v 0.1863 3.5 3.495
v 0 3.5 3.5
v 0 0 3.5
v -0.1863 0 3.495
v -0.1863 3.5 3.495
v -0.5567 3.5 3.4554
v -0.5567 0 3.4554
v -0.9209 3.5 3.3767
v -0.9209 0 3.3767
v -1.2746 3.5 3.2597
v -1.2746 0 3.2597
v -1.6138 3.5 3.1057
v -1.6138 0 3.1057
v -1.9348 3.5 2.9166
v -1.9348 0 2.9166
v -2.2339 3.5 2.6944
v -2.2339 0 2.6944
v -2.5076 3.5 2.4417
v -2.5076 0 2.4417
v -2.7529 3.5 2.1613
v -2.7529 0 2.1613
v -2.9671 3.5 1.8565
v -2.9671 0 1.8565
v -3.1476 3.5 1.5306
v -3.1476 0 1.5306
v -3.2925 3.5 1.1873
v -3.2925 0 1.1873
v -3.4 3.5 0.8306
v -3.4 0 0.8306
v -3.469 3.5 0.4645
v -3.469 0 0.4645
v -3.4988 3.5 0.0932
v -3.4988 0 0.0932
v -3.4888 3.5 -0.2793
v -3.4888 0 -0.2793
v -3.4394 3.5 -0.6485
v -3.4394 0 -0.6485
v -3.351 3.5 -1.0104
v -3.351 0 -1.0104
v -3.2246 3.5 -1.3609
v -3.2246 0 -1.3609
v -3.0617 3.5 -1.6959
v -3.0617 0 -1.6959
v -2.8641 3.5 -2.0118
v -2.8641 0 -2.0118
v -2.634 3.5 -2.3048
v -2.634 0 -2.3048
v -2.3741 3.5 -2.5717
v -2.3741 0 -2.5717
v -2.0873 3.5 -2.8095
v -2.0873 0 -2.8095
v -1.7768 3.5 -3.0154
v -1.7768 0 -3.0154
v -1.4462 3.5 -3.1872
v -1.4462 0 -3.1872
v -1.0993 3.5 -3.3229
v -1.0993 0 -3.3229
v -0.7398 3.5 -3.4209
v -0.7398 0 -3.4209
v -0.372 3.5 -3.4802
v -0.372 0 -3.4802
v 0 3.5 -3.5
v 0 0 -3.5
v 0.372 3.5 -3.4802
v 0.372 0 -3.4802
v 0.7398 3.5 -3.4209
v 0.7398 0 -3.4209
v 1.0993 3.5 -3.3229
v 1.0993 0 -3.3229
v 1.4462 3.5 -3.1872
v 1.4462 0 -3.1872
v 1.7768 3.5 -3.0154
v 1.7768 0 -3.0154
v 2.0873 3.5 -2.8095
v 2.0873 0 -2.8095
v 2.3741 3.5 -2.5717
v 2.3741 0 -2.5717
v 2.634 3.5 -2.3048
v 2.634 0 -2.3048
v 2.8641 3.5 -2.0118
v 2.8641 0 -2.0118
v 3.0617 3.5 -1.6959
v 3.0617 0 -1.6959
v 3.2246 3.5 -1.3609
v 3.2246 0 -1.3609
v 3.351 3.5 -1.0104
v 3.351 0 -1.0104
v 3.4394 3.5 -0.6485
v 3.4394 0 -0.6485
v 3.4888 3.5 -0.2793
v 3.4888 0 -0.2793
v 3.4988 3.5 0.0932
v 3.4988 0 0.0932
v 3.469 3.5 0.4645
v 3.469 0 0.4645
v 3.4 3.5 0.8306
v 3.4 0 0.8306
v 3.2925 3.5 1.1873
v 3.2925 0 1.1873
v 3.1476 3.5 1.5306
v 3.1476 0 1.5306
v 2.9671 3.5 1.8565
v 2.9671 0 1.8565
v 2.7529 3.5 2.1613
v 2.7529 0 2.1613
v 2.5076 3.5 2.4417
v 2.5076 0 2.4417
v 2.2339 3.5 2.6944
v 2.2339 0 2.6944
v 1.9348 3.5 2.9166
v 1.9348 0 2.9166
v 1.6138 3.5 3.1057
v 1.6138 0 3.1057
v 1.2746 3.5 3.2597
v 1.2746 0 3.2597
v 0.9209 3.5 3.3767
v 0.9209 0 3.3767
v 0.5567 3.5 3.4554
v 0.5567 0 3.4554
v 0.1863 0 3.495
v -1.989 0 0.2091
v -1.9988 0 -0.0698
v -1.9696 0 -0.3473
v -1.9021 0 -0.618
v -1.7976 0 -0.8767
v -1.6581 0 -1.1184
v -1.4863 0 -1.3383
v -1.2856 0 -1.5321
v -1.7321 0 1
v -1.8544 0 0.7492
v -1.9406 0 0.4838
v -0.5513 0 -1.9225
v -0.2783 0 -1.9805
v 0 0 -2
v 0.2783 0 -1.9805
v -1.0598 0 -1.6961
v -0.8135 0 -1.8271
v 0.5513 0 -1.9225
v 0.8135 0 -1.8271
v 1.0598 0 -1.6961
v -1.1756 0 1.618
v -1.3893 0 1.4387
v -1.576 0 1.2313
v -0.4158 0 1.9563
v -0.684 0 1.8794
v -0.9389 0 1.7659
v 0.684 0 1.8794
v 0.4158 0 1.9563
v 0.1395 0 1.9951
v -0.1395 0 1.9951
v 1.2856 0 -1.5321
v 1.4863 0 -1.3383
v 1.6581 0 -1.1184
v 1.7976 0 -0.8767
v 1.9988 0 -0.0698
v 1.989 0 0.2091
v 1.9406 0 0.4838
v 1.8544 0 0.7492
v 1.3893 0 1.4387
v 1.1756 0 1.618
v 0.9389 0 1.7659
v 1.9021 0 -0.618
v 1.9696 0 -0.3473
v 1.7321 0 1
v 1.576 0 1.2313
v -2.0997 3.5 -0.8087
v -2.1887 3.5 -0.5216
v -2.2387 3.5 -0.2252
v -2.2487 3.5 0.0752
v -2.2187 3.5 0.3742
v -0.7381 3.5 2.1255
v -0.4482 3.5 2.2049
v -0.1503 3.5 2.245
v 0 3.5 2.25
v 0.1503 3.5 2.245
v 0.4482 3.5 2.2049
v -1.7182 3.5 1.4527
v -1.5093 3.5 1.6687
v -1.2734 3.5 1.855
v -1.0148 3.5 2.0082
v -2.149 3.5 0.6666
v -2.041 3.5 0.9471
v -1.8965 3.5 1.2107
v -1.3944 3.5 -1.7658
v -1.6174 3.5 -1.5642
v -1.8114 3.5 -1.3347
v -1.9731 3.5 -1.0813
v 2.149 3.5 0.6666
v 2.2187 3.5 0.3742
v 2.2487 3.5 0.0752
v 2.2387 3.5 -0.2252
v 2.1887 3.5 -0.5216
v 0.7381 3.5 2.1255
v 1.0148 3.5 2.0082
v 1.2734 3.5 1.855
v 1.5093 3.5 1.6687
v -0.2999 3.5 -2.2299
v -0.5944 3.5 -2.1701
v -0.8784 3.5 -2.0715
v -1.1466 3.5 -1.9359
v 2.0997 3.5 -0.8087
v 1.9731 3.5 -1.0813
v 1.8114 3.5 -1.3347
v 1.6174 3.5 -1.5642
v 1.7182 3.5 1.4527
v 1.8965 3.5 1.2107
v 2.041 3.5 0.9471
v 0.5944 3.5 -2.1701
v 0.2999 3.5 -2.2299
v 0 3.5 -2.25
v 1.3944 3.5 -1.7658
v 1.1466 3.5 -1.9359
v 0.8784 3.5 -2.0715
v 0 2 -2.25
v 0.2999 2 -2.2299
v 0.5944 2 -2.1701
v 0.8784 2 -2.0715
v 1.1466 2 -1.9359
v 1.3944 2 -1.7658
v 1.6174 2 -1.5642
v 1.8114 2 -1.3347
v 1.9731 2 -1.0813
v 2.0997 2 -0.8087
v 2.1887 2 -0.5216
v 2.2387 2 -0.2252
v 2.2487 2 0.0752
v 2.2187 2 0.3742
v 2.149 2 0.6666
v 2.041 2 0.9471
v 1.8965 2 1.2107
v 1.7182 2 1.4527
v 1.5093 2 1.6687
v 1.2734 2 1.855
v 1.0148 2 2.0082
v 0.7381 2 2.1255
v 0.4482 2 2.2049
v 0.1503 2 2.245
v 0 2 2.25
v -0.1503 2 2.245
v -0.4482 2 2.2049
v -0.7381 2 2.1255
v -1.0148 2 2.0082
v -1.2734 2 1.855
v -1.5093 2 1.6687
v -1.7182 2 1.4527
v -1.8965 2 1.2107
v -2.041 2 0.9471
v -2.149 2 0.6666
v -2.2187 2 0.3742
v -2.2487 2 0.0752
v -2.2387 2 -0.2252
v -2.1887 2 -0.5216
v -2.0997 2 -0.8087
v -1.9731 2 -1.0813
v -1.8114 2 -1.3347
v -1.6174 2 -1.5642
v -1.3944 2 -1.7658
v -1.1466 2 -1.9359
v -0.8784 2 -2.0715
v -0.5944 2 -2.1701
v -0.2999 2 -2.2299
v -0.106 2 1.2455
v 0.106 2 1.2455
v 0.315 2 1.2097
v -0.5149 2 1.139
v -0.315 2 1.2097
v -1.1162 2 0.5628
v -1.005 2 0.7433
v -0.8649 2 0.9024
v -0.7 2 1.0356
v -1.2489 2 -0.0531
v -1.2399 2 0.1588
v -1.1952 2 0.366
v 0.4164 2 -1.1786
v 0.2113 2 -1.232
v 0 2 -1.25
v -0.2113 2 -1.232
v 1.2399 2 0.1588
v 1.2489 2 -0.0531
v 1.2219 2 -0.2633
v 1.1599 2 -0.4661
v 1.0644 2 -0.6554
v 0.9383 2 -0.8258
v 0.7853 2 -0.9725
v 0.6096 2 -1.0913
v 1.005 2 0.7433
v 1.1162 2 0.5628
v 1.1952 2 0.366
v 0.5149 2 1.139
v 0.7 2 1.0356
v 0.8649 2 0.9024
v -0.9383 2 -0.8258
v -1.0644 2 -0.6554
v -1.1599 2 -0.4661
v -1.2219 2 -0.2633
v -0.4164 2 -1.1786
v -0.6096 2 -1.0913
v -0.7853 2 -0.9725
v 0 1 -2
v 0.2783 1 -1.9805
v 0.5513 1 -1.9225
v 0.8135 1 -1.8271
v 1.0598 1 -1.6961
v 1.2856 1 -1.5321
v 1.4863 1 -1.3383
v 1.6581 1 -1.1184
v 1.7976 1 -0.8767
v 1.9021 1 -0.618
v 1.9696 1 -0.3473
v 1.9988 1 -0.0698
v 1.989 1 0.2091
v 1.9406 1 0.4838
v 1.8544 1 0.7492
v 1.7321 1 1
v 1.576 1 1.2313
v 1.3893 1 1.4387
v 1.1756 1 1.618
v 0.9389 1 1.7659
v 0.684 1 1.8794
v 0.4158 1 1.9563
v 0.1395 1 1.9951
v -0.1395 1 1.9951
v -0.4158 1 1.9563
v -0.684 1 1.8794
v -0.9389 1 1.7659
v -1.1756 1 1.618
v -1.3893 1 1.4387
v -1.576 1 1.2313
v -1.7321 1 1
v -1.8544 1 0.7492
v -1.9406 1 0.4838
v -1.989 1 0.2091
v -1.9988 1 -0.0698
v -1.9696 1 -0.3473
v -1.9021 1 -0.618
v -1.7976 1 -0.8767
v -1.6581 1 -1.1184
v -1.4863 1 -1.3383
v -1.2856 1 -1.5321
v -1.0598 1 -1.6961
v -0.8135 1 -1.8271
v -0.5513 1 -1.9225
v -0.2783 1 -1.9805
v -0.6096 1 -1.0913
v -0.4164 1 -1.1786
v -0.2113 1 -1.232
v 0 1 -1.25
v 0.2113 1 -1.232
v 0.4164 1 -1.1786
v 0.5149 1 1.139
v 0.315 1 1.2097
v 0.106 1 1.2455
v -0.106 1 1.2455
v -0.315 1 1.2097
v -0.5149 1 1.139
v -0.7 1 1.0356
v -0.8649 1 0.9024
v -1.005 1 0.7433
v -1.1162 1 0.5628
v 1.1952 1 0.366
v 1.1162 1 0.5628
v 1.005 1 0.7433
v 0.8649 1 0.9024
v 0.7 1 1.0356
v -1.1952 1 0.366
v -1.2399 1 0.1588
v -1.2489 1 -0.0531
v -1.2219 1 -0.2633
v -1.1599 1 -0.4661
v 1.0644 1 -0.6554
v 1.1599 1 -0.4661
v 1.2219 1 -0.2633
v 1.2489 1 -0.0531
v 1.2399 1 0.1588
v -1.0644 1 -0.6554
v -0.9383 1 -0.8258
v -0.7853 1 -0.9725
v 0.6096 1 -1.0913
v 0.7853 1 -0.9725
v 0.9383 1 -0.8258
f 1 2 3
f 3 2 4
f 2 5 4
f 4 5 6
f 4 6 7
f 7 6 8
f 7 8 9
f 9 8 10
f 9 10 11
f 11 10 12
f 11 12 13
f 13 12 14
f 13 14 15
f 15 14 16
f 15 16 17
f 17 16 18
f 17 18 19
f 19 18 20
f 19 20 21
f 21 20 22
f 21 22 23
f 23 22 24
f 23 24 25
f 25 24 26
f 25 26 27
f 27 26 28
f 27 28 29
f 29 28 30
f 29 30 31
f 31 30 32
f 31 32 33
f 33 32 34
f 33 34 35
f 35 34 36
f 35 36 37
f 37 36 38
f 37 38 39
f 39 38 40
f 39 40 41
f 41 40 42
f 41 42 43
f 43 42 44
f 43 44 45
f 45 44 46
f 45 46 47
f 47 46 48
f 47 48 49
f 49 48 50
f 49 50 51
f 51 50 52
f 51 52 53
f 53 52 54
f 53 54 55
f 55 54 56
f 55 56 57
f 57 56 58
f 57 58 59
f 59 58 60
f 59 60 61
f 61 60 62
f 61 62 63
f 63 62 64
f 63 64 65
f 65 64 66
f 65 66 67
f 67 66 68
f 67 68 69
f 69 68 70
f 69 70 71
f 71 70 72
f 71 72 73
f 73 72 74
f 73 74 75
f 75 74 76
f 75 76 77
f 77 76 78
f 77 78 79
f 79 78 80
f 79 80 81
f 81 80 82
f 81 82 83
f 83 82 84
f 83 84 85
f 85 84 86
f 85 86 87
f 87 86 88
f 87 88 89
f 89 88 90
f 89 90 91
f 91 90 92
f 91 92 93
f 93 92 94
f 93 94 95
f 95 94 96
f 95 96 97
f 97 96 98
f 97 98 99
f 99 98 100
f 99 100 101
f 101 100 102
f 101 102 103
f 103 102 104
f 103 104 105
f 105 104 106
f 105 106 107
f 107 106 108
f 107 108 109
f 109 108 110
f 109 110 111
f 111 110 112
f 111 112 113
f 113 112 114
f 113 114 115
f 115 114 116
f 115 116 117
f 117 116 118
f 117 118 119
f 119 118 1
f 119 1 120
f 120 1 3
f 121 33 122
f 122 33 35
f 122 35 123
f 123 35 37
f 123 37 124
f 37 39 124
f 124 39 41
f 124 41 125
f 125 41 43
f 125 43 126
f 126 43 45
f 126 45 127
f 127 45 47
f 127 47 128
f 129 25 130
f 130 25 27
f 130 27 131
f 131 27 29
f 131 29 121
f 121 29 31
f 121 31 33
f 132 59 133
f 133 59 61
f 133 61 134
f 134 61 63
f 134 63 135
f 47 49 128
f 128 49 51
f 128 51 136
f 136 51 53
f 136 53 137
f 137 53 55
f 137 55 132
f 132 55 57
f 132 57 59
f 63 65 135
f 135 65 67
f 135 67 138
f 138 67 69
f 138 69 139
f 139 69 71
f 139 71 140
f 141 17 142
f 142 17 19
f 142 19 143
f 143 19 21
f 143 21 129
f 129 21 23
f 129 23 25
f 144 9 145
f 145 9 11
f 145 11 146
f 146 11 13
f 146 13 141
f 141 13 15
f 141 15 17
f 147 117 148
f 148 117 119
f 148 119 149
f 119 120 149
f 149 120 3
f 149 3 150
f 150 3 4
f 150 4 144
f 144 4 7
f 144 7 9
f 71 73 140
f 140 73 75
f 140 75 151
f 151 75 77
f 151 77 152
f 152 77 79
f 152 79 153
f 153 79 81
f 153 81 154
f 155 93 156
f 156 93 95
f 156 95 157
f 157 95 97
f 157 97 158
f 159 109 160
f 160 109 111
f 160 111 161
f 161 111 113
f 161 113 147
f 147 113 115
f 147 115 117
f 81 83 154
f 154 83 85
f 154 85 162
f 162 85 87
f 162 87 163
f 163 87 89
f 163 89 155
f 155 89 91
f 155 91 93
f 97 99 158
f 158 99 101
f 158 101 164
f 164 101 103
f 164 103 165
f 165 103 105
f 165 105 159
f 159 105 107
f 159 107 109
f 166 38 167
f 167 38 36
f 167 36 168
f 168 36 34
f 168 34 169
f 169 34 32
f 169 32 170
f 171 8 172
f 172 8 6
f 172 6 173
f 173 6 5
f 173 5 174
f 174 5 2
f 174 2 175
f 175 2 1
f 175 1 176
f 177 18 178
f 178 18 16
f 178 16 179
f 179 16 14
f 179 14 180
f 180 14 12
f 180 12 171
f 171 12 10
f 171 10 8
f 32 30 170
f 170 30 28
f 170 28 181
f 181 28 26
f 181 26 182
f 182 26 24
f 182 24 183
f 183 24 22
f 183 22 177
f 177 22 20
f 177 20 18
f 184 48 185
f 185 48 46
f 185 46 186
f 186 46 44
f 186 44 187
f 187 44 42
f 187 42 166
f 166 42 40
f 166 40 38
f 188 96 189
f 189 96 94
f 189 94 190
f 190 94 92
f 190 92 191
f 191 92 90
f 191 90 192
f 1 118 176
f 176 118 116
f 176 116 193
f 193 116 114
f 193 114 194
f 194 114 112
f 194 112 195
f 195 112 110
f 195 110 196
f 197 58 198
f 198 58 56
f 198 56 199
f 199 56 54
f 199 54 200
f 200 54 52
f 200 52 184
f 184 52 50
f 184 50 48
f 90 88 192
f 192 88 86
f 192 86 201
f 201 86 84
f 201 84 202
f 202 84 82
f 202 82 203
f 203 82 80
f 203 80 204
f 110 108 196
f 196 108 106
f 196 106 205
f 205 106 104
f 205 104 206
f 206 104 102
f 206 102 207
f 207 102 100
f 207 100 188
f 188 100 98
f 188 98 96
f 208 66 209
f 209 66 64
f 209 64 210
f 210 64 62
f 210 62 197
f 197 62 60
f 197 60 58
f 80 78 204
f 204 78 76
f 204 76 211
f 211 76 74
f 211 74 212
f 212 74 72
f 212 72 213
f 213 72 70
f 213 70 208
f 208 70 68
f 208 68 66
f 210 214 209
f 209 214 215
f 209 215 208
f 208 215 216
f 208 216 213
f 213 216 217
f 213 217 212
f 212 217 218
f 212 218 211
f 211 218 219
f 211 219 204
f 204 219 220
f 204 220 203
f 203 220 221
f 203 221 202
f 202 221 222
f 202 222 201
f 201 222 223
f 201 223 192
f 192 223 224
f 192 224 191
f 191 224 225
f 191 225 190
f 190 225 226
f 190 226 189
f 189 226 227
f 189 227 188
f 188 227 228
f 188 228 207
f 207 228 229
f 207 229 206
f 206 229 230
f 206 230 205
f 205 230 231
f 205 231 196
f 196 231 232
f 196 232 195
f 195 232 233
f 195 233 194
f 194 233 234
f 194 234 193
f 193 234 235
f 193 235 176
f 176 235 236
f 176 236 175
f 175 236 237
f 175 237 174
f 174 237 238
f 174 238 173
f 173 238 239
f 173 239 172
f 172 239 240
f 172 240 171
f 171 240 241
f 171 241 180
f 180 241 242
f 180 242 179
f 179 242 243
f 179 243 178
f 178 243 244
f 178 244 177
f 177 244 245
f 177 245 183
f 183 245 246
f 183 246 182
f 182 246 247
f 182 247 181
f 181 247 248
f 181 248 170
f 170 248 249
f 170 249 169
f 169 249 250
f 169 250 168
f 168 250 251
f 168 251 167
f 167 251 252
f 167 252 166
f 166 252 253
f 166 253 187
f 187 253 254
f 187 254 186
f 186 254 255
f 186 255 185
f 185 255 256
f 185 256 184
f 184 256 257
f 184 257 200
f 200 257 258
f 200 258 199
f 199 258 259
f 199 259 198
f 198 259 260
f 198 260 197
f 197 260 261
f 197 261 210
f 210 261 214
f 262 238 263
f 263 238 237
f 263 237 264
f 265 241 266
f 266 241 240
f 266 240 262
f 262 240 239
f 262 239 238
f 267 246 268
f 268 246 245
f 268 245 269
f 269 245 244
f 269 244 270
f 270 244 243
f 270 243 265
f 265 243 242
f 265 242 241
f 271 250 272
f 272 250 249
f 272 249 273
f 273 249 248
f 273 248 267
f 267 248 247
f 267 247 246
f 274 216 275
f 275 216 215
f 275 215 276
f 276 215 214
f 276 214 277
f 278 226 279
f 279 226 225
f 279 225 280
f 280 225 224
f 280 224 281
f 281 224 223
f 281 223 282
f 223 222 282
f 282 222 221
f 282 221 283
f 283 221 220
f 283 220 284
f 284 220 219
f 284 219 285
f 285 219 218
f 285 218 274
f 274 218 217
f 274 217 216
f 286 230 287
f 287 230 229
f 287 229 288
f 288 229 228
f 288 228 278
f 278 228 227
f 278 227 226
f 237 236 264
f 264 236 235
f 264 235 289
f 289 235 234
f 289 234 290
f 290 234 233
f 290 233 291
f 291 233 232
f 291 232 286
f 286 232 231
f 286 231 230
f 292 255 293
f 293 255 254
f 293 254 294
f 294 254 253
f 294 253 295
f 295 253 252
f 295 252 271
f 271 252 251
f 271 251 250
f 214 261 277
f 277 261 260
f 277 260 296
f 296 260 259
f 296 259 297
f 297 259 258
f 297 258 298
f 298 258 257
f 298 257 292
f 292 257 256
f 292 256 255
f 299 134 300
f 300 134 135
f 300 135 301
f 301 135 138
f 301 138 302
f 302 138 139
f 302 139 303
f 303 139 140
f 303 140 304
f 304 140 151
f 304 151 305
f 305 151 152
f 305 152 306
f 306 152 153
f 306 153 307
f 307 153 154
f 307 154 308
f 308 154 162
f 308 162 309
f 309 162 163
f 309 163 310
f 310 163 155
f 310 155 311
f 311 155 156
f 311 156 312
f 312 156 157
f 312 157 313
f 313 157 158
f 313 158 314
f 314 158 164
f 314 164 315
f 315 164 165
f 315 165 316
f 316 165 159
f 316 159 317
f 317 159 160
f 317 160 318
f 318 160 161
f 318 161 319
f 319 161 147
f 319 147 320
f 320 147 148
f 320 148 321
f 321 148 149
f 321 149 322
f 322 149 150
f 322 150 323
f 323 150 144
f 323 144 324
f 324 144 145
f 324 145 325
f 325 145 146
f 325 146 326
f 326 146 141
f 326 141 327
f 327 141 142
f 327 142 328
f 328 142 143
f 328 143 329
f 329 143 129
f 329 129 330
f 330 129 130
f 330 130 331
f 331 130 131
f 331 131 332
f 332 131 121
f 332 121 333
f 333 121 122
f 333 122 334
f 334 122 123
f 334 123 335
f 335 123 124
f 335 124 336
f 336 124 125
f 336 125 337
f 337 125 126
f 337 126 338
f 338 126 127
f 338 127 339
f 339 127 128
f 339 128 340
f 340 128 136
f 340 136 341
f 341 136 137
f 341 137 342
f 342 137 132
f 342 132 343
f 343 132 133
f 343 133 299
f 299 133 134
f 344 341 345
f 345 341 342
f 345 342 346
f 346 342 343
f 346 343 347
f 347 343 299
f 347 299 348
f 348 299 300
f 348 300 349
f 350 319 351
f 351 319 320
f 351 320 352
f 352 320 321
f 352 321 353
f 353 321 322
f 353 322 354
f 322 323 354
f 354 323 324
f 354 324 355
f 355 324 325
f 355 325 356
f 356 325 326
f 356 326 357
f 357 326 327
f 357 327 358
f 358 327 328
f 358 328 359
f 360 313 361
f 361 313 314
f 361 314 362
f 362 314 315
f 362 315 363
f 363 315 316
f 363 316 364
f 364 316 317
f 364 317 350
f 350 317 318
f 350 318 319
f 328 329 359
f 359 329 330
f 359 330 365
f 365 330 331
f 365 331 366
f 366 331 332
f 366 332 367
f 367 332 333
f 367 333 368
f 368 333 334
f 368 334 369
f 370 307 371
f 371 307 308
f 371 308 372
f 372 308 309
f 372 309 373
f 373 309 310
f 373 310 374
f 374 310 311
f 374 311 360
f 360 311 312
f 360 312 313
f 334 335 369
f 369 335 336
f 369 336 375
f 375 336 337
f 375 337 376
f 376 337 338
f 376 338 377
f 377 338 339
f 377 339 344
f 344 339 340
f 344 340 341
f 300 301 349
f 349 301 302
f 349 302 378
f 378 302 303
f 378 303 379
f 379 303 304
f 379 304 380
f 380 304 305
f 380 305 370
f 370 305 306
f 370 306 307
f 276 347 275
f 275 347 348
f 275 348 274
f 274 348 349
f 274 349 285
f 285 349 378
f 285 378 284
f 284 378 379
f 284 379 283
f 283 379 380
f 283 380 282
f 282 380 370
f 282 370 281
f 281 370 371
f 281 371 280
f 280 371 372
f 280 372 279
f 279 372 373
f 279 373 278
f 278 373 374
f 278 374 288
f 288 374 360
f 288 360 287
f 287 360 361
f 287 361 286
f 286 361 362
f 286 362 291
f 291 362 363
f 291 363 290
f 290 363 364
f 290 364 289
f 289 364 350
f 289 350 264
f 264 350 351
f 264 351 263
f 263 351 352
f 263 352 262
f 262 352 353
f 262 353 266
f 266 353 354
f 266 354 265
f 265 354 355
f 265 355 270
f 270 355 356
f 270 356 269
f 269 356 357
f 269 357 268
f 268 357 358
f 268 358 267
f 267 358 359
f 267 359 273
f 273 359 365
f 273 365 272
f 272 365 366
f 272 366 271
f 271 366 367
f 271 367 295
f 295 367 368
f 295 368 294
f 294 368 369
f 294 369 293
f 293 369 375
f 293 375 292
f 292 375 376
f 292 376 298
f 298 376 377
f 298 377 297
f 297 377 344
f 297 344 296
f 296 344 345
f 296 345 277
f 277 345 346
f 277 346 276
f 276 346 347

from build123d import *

# Parameters (mm, degrees)
SKETCH1_R           = 3.5
BOSS_EXTRUDE1_DEPTH = 2
SKETCH2_R           = 3.5
SKETCH2_R_2         = 2.25
BOSS_EXTRUDE2_DEPTH = 1.5
SKETCH3_R           = 2
CUT_EXTRUDE1_DEPTH  = 1
SKETCH4_R           = 1.25
CUT_EXTRUDE2_DEPTH  = 1


with BuildPart() as part:
    # Sketch1 → Boss-Extrude1 (new body)
    with BuildSketch(Plane(origin=(0, 0, 0), x_dir=(1, 0, 0), z_dir=(0, 1, 0))):
        with Locations(Location((0, 0, 0), (0, 0, 270))):
            Circle(SKETCH1_R)
    extrude(amount=BOSS_EXTRUDE1_DEPTH)

    # Sketch2 → Boss-Extrude2 (add)
    with BuildSketch(Plane(origin=(0, 2, 0), x_dir=(1, 0, 0), z_dir=(0, 1, 0))):
        with Locations(Location((0, 0, 0), (0, 0, 270))):
            Circle(SKETCH2_R)
        with Locations(Location((0, 0, 0), (0, 0, 270))):
            Circle(SKETCH2_R_2, mode=Mode.SUBTRACT)
    extrude(amount=BOSS_EXTRUDE2_DEPTH)

    # Sketch3 → Cut-Extrude1 (cut)
    with BuildSketch(Plane.XZ):
        with Locations(Location((0, 0, 0), (0, 0, 270))):
            Circle(SKETCH3_R)
    extrude(amount=-CUT_EXTRUDE1_DEPTH, mode=Mode.SUBTRACT)

    # Sketch4 → Cut-Extrude2 (cut)
    with BuildSketch(Plane.XZ.offset(-1)):
        with Locations(Location((0, 0, 0), (0, 0, 270))):
            Circle(SKETCH4_R)
    extrude(amount=-CUT_EXTRUDE2_DEPTH, mode=Mode.SUBTRACT)


solid = part.part
